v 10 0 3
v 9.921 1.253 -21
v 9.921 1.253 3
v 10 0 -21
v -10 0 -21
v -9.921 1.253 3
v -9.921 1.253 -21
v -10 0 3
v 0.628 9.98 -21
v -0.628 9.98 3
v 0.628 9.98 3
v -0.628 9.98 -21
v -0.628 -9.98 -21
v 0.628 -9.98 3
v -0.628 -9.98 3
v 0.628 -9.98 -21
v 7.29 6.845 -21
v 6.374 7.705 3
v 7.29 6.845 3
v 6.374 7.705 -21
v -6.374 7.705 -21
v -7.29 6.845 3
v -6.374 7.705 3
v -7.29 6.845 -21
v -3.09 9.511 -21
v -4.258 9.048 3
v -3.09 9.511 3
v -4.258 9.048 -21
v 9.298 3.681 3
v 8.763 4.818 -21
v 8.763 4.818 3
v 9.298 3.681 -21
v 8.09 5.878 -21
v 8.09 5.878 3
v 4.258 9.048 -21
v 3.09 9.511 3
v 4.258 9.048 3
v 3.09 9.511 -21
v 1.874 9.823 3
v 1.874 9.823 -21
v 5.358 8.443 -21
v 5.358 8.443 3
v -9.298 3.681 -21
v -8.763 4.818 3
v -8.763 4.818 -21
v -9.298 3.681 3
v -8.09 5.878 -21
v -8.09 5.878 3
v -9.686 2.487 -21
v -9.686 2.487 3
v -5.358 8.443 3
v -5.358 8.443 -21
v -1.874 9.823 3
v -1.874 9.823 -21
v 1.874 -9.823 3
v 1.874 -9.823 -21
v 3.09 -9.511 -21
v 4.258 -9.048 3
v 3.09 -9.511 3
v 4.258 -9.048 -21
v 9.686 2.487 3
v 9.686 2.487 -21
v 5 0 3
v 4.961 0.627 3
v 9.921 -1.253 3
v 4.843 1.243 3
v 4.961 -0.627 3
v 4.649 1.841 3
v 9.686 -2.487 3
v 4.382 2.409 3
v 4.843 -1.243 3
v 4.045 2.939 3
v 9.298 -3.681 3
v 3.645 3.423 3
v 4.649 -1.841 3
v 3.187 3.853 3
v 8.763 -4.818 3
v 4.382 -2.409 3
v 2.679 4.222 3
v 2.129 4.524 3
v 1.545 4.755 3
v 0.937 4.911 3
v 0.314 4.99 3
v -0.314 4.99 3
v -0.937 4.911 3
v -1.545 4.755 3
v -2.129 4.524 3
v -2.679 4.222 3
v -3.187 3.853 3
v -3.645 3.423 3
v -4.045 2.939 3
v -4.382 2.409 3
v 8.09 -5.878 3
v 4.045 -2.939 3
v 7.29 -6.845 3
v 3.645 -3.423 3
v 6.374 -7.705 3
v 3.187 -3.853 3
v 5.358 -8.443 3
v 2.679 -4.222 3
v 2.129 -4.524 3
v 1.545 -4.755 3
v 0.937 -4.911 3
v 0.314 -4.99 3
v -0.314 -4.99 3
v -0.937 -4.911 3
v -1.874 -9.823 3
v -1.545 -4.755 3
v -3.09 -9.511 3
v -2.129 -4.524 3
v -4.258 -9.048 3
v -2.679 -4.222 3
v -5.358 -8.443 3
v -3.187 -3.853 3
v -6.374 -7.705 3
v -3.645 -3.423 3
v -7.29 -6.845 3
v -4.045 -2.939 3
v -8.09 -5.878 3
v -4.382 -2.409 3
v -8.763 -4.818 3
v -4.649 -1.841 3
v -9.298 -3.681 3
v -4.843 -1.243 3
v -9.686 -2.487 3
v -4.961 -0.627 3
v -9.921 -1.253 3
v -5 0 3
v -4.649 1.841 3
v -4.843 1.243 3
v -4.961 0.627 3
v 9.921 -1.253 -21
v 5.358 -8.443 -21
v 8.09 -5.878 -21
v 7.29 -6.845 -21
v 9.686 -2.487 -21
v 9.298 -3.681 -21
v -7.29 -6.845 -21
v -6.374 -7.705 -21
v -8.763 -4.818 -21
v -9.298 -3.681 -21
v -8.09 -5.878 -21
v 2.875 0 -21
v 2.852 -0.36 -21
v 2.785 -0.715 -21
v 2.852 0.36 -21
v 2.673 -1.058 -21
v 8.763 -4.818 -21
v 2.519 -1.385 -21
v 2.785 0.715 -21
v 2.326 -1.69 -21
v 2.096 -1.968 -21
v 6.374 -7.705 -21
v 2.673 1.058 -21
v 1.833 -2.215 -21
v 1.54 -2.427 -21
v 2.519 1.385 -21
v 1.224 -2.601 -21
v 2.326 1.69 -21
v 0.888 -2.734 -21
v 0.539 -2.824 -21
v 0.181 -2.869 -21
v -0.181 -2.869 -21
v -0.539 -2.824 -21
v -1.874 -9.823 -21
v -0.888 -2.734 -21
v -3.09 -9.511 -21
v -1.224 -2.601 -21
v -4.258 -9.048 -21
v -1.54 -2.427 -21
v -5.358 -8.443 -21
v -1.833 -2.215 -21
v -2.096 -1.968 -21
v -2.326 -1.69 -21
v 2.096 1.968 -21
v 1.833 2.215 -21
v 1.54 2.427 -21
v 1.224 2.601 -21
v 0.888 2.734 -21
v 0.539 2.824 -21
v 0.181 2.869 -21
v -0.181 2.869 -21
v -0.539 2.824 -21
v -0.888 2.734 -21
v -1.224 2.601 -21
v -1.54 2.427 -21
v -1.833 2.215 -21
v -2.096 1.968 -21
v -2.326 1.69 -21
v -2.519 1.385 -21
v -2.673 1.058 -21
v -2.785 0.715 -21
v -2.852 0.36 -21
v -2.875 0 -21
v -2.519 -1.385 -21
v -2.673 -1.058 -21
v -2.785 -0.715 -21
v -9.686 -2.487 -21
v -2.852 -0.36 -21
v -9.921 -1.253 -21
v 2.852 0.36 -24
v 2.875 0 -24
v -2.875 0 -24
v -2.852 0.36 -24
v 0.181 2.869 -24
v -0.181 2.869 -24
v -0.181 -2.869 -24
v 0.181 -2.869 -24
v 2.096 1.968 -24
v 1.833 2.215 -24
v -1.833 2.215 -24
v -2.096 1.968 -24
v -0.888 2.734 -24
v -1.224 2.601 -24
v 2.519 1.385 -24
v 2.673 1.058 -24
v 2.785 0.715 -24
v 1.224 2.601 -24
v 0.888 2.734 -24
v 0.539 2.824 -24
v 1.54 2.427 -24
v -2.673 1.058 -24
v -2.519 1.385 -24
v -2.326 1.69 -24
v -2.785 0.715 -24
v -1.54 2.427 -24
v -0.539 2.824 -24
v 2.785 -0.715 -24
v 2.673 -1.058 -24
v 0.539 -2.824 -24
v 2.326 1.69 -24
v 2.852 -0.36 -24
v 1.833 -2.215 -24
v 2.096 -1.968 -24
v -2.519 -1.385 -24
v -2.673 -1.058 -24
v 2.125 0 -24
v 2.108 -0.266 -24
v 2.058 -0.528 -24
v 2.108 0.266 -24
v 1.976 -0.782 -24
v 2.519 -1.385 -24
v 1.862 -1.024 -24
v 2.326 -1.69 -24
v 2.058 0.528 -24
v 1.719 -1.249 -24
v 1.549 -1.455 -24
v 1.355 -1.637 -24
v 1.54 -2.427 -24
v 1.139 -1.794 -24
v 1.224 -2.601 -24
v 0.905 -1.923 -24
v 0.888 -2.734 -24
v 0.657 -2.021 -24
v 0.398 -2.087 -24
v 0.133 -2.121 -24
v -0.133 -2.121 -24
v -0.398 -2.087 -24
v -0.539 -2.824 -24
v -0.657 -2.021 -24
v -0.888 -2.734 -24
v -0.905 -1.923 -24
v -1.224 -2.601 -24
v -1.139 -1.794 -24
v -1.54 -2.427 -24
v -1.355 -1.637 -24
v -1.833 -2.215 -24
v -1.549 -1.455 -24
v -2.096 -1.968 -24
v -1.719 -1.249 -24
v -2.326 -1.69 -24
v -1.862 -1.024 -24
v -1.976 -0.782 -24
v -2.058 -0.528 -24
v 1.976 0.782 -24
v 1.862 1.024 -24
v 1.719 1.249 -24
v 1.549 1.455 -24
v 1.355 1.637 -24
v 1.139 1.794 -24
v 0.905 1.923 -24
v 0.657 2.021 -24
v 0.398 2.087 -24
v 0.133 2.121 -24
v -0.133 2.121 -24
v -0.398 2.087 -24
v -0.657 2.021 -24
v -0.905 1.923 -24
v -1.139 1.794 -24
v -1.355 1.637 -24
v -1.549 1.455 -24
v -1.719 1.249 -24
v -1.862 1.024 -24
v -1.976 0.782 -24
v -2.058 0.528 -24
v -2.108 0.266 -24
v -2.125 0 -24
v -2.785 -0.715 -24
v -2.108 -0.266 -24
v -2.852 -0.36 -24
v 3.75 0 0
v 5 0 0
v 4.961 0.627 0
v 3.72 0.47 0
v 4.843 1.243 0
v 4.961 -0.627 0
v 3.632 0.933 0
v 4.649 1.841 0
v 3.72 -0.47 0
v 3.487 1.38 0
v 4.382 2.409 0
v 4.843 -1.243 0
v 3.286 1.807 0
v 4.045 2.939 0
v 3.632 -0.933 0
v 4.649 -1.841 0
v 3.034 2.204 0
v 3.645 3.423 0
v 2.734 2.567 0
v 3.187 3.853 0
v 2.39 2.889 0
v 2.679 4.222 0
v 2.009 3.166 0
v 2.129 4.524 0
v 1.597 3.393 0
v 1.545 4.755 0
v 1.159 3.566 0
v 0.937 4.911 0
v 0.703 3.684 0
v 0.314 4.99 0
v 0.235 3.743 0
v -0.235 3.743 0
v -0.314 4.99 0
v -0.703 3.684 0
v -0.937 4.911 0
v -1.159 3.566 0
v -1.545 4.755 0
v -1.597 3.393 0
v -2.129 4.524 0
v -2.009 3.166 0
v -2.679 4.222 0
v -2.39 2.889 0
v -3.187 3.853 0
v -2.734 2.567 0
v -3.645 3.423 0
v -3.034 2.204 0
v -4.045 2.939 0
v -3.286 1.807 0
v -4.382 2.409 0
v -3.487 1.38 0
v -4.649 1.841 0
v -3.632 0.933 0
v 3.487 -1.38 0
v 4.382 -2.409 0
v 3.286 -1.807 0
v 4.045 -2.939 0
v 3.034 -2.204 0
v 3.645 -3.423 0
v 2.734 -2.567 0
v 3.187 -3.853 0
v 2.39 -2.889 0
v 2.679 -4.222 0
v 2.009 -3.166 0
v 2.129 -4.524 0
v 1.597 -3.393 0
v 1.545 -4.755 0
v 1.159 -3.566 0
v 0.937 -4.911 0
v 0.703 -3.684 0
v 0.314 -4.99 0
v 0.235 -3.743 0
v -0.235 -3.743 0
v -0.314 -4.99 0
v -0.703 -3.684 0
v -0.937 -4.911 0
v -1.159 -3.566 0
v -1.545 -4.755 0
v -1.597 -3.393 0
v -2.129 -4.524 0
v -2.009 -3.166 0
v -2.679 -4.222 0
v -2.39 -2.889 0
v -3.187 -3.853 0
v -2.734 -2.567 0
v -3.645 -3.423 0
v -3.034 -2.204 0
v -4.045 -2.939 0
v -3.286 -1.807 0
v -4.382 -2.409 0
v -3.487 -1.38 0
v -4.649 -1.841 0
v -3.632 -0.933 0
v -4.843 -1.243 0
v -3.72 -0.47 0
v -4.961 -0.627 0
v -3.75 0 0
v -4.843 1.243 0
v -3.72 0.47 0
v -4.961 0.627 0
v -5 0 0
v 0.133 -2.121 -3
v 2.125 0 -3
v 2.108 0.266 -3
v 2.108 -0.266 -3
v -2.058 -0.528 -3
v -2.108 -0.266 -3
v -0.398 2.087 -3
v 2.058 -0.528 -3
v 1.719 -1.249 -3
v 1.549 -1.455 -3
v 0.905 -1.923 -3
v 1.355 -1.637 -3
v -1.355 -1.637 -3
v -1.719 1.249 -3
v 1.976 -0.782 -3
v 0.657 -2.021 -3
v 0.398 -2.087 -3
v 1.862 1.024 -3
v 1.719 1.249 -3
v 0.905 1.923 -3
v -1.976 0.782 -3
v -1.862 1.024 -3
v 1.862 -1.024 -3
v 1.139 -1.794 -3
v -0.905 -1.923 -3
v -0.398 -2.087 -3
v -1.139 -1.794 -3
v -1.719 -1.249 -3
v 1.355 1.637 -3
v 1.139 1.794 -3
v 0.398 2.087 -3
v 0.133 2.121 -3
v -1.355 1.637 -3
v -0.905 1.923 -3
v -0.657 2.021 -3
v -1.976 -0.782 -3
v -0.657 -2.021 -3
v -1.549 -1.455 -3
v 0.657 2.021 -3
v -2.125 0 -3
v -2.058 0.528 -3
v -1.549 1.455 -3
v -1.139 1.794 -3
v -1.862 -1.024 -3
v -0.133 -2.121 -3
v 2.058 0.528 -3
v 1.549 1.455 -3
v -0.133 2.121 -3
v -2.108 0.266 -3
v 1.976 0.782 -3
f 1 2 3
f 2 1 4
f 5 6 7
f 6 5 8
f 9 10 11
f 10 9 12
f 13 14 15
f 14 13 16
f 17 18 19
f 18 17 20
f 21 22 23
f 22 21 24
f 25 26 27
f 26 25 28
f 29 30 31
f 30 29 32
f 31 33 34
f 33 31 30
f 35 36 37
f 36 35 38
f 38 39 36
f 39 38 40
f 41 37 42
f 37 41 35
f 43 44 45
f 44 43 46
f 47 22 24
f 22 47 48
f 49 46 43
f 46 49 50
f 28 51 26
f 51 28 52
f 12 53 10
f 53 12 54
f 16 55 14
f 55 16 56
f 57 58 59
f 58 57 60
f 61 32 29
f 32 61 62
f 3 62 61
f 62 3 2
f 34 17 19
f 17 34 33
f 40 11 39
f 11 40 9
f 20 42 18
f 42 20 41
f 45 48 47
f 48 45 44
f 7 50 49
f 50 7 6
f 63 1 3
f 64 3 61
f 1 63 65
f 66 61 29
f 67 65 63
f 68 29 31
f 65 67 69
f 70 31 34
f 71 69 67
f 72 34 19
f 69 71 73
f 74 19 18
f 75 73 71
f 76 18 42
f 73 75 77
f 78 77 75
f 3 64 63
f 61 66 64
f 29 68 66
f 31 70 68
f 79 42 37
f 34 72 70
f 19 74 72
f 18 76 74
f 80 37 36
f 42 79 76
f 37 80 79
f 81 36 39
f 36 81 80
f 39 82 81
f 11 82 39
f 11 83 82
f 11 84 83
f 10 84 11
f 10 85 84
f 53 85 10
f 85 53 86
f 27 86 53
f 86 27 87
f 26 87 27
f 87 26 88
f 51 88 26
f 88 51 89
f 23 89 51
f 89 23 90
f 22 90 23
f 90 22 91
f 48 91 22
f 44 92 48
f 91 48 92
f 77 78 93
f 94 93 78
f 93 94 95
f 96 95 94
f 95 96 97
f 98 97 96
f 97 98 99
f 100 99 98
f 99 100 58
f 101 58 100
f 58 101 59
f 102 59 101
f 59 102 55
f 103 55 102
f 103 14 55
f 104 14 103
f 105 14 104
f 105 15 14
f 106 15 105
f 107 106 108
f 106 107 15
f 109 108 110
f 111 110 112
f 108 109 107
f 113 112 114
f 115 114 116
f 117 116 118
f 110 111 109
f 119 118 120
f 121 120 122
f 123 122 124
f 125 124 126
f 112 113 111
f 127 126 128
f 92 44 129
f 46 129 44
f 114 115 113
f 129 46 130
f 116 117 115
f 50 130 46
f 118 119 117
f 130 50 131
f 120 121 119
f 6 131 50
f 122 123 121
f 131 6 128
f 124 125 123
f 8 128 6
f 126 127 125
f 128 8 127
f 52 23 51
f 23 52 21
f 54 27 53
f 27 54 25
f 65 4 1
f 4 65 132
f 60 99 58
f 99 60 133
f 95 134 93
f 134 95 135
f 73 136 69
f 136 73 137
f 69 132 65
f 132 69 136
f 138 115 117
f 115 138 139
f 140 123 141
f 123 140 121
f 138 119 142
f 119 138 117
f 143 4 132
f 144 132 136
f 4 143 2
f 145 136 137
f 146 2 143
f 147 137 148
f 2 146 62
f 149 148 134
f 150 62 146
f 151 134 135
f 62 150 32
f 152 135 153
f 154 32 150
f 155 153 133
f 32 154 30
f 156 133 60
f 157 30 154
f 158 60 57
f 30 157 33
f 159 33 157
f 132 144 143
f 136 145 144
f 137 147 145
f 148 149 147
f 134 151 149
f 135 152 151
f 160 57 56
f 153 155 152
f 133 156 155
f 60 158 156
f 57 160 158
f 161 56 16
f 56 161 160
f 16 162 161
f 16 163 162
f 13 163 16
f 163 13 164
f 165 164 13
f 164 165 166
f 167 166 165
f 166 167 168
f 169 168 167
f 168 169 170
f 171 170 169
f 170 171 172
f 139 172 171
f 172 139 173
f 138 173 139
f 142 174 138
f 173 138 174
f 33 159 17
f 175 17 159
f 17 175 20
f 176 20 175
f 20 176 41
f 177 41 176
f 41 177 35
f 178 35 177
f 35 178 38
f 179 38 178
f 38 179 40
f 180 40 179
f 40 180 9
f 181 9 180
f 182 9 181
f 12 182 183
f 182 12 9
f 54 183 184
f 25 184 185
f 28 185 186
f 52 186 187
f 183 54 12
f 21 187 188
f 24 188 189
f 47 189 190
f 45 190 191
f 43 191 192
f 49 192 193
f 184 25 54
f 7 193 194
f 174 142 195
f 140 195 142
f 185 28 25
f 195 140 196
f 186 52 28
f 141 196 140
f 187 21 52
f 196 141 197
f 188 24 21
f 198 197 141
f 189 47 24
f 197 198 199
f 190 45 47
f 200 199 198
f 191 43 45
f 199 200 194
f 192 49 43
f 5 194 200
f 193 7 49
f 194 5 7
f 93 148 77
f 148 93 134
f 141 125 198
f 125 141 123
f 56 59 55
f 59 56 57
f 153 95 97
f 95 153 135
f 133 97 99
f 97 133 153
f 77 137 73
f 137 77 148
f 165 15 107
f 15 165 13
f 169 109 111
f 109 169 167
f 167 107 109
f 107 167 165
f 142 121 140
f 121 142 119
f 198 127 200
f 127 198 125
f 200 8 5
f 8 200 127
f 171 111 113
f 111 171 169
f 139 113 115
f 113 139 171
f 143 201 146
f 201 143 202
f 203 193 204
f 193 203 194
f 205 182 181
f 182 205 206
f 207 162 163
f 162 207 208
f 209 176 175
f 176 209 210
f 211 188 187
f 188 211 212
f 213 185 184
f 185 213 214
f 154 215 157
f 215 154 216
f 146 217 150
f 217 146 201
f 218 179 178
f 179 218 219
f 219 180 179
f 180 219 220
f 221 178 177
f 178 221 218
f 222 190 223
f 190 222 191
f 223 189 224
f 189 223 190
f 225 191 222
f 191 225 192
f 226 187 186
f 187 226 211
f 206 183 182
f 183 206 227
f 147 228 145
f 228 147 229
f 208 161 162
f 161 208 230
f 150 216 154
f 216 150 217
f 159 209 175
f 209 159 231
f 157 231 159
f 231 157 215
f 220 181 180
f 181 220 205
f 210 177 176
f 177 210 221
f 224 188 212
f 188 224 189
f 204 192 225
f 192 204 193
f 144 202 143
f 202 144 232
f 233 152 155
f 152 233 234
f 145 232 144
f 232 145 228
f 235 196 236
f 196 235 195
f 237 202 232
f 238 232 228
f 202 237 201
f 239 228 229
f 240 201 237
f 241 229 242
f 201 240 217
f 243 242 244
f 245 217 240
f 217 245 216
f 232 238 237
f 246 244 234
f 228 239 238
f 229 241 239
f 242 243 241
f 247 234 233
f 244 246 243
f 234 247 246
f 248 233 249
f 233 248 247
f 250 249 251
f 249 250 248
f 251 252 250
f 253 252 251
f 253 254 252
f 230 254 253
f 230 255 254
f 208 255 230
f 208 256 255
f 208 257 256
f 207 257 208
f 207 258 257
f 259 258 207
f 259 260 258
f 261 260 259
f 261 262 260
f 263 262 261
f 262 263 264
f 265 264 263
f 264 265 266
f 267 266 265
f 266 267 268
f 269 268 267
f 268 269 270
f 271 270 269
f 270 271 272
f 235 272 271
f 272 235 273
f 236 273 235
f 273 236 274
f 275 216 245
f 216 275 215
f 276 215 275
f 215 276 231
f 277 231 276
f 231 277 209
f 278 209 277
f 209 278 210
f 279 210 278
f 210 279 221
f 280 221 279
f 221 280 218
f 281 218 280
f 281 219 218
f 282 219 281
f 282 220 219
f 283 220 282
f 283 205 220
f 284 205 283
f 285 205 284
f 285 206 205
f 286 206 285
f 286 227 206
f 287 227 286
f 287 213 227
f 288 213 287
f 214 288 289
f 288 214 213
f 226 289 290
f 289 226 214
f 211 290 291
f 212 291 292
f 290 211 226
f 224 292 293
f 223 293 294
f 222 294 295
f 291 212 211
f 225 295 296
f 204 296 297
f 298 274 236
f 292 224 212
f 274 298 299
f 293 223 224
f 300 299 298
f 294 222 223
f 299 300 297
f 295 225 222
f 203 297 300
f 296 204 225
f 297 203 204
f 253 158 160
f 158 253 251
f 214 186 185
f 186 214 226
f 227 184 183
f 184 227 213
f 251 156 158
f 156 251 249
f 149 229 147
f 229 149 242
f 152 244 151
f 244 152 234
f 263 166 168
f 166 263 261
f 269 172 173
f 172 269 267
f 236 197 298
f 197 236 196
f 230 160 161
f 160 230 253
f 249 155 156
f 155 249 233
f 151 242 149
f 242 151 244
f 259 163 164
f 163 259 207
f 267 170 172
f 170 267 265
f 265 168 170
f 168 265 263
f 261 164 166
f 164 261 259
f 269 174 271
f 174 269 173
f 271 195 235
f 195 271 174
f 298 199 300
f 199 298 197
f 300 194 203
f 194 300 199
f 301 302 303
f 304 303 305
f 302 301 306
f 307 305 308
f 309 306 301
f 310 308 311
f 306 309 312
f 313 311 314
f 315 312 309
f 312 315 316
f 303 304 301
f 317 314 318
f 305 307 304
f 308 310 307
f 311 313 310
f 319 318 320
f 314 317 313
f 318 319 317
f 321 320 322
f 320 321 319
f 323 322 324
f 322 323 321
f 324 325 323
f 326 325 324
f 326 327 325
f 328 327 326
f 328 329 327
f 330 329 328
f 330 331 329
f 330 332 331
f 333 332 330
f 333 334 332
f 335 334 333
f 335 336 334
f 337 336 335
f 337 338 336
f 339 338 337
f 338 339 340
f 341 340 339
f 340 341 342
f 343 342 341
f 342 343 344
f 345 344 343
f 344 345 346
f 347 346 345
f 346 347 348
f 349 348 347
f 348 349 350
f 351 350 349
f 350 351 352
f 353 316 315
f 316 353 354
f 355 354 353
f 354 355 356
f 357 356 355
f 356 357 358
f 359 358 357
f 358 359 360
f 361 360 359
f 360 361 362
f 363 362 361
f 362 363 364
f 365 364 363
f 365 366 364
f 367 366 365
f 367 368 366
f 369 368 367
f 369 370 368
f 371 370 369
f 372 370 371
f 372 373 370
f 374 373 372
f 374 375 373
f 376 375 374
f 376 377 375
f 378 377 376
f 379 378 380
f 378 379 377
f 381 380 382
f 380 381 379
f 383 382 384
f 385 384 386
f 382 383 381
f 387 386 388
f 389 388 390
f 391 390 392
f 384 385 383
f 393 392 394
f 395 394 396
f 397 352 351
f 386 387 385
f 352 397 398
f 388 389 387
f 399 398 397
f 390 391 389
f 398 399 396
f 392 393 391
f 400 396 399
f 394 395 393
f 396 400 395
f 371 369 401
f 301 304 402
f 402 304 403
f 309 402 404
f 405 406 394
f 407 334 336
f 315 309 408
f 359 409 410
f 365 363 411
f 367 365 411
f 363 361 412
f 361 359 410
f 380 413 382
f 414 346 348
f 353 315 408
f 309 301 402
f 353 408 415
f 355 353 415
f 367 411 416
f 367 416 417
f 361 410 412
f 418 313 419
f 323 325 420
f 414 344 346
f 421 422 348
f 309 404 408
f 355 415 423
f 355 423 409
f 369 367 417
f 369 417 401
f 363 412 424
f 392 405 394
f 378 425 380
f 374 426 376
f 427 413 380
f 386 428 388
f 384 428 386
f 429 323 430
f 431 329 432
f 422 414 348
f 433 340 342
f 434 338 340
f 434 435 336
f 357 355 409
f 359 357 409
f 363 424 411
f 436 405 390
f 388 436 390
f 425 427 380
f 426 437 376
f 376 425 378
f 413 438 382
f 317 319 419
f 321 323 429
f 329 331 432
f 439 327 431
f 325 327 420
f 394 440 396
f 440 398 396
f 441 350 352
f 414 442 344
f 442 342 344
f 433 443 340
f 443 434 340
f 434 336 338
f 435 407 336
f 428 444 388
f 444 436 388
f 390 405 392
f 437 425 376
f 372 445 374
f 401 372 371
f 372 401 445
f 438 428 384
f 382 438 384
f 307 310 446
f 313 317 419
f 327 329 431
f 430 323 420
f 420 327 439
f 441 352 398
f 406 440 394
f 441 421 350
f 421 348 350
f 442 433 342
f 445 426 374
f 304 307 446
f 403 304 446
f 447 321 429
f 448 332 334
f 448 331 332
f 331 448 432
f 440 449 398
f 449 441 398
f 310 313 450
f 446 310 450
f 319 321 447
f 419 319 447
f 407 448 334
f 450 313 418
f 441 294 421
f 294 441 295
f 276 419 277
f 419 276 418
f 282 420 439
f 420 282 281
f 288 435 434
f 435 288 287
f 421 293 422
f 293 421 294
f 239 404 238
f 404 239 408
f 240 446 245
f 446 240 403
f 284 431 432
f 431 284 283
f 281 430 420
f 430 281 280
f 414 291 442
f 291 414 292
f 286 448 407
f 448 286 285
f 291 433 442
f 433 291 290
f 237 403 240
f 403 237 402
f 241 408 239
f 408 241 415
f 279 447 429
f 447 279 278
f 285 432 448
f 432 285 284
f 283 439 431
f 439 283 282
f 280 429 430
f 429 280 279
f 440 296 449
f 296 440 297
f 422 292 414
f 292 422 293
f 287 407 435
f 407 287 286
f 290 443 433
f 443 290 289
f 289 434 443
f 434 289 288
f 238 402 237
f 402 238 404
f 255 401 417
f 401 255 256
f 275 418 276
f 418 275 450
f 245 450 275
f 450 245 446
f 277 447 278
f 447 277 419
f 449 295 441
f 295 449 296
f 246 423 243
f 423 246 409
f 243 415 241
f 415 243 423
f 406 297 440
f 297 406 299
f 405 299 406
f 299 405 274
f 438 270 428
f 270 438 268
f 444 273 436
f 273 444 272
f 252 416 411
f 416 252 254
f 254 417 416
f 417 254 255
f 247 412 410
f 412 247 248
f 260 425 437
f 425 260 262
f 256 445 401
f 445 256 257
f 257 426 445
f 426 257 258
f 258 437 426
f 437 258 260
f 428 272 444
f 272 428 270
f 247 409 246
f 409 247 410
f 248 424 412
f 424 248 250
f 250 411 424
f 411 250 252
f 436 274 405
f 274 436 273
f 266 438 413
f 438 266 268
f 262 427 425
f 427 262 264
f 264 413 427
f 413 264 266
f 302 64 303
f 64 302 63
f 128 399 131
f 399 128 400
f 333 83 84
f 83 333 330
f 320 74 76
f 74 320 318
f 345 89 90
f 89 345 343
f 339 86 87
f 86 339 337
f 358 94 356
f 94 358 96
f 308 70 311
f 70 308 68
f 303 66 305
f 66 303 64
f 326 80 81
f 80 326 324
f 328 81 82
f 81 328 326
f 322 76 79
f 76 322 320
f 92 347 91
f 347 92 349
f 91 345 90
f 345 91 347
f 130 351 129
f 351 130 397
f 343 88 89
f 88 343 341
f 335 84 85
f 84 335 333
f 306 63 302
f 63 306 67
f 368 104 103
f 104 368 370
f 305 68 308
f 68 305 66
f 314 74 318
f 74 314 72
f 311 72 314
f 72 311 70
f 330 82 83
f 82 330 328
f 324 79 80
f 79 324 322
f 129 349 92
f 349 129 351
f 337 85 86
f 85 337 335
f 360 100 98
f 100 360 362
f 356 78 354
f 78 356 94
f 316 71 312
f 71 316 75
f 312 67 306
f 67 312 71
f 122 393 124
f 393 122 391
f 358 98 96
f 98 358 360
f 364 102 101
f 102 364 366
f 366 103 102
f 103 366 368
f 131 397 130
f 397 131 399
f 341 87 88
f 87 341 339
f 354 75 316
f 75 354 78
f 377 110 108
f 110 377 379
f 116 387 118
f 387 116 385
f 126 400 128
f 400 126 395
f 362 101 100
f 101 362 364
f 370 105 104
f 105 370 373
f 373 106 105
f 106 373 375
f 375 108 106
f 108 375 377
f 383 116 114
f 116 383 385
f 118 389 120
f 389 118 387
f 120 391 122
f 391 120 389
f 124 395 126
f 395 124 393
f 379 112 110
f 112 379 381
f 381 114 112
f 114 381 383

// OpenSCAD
$fn = 50;

difference() {
	union() {
		translate(v = [0, 0, -21.0]) {
			cylinder(h = 24, r = 10.0);
		}
		#translate(v = [0, 0, -24.0]) {
			cylinder(h = 24, r = 2.875);
		}
	}
	union() {
		translate(v = [0, 0, 0]) {
			rotate(a = [0, 0, 0]) {
				difference() {
					union() {
						translate(v = [0, 0, -24.0]) {
							cylinder(h = 24, r = 2.0);
						}
						translate(v = [0, 0, -3]) {
							cylinder(h = 3, r1 = 2.125, r2 = 3.75);
						}
						translate(v = [0, 0, -24.0]) {
							cylinder(h = 24, r = 2.125);
						}
						translate(v = [0, 0, -24.0]) {
							cylinder(h = 24, r = 2.0);
						}
					}
					union();
				}
			}
		}
		#cylinder(h = 3, r = 5.0);
	}
}
